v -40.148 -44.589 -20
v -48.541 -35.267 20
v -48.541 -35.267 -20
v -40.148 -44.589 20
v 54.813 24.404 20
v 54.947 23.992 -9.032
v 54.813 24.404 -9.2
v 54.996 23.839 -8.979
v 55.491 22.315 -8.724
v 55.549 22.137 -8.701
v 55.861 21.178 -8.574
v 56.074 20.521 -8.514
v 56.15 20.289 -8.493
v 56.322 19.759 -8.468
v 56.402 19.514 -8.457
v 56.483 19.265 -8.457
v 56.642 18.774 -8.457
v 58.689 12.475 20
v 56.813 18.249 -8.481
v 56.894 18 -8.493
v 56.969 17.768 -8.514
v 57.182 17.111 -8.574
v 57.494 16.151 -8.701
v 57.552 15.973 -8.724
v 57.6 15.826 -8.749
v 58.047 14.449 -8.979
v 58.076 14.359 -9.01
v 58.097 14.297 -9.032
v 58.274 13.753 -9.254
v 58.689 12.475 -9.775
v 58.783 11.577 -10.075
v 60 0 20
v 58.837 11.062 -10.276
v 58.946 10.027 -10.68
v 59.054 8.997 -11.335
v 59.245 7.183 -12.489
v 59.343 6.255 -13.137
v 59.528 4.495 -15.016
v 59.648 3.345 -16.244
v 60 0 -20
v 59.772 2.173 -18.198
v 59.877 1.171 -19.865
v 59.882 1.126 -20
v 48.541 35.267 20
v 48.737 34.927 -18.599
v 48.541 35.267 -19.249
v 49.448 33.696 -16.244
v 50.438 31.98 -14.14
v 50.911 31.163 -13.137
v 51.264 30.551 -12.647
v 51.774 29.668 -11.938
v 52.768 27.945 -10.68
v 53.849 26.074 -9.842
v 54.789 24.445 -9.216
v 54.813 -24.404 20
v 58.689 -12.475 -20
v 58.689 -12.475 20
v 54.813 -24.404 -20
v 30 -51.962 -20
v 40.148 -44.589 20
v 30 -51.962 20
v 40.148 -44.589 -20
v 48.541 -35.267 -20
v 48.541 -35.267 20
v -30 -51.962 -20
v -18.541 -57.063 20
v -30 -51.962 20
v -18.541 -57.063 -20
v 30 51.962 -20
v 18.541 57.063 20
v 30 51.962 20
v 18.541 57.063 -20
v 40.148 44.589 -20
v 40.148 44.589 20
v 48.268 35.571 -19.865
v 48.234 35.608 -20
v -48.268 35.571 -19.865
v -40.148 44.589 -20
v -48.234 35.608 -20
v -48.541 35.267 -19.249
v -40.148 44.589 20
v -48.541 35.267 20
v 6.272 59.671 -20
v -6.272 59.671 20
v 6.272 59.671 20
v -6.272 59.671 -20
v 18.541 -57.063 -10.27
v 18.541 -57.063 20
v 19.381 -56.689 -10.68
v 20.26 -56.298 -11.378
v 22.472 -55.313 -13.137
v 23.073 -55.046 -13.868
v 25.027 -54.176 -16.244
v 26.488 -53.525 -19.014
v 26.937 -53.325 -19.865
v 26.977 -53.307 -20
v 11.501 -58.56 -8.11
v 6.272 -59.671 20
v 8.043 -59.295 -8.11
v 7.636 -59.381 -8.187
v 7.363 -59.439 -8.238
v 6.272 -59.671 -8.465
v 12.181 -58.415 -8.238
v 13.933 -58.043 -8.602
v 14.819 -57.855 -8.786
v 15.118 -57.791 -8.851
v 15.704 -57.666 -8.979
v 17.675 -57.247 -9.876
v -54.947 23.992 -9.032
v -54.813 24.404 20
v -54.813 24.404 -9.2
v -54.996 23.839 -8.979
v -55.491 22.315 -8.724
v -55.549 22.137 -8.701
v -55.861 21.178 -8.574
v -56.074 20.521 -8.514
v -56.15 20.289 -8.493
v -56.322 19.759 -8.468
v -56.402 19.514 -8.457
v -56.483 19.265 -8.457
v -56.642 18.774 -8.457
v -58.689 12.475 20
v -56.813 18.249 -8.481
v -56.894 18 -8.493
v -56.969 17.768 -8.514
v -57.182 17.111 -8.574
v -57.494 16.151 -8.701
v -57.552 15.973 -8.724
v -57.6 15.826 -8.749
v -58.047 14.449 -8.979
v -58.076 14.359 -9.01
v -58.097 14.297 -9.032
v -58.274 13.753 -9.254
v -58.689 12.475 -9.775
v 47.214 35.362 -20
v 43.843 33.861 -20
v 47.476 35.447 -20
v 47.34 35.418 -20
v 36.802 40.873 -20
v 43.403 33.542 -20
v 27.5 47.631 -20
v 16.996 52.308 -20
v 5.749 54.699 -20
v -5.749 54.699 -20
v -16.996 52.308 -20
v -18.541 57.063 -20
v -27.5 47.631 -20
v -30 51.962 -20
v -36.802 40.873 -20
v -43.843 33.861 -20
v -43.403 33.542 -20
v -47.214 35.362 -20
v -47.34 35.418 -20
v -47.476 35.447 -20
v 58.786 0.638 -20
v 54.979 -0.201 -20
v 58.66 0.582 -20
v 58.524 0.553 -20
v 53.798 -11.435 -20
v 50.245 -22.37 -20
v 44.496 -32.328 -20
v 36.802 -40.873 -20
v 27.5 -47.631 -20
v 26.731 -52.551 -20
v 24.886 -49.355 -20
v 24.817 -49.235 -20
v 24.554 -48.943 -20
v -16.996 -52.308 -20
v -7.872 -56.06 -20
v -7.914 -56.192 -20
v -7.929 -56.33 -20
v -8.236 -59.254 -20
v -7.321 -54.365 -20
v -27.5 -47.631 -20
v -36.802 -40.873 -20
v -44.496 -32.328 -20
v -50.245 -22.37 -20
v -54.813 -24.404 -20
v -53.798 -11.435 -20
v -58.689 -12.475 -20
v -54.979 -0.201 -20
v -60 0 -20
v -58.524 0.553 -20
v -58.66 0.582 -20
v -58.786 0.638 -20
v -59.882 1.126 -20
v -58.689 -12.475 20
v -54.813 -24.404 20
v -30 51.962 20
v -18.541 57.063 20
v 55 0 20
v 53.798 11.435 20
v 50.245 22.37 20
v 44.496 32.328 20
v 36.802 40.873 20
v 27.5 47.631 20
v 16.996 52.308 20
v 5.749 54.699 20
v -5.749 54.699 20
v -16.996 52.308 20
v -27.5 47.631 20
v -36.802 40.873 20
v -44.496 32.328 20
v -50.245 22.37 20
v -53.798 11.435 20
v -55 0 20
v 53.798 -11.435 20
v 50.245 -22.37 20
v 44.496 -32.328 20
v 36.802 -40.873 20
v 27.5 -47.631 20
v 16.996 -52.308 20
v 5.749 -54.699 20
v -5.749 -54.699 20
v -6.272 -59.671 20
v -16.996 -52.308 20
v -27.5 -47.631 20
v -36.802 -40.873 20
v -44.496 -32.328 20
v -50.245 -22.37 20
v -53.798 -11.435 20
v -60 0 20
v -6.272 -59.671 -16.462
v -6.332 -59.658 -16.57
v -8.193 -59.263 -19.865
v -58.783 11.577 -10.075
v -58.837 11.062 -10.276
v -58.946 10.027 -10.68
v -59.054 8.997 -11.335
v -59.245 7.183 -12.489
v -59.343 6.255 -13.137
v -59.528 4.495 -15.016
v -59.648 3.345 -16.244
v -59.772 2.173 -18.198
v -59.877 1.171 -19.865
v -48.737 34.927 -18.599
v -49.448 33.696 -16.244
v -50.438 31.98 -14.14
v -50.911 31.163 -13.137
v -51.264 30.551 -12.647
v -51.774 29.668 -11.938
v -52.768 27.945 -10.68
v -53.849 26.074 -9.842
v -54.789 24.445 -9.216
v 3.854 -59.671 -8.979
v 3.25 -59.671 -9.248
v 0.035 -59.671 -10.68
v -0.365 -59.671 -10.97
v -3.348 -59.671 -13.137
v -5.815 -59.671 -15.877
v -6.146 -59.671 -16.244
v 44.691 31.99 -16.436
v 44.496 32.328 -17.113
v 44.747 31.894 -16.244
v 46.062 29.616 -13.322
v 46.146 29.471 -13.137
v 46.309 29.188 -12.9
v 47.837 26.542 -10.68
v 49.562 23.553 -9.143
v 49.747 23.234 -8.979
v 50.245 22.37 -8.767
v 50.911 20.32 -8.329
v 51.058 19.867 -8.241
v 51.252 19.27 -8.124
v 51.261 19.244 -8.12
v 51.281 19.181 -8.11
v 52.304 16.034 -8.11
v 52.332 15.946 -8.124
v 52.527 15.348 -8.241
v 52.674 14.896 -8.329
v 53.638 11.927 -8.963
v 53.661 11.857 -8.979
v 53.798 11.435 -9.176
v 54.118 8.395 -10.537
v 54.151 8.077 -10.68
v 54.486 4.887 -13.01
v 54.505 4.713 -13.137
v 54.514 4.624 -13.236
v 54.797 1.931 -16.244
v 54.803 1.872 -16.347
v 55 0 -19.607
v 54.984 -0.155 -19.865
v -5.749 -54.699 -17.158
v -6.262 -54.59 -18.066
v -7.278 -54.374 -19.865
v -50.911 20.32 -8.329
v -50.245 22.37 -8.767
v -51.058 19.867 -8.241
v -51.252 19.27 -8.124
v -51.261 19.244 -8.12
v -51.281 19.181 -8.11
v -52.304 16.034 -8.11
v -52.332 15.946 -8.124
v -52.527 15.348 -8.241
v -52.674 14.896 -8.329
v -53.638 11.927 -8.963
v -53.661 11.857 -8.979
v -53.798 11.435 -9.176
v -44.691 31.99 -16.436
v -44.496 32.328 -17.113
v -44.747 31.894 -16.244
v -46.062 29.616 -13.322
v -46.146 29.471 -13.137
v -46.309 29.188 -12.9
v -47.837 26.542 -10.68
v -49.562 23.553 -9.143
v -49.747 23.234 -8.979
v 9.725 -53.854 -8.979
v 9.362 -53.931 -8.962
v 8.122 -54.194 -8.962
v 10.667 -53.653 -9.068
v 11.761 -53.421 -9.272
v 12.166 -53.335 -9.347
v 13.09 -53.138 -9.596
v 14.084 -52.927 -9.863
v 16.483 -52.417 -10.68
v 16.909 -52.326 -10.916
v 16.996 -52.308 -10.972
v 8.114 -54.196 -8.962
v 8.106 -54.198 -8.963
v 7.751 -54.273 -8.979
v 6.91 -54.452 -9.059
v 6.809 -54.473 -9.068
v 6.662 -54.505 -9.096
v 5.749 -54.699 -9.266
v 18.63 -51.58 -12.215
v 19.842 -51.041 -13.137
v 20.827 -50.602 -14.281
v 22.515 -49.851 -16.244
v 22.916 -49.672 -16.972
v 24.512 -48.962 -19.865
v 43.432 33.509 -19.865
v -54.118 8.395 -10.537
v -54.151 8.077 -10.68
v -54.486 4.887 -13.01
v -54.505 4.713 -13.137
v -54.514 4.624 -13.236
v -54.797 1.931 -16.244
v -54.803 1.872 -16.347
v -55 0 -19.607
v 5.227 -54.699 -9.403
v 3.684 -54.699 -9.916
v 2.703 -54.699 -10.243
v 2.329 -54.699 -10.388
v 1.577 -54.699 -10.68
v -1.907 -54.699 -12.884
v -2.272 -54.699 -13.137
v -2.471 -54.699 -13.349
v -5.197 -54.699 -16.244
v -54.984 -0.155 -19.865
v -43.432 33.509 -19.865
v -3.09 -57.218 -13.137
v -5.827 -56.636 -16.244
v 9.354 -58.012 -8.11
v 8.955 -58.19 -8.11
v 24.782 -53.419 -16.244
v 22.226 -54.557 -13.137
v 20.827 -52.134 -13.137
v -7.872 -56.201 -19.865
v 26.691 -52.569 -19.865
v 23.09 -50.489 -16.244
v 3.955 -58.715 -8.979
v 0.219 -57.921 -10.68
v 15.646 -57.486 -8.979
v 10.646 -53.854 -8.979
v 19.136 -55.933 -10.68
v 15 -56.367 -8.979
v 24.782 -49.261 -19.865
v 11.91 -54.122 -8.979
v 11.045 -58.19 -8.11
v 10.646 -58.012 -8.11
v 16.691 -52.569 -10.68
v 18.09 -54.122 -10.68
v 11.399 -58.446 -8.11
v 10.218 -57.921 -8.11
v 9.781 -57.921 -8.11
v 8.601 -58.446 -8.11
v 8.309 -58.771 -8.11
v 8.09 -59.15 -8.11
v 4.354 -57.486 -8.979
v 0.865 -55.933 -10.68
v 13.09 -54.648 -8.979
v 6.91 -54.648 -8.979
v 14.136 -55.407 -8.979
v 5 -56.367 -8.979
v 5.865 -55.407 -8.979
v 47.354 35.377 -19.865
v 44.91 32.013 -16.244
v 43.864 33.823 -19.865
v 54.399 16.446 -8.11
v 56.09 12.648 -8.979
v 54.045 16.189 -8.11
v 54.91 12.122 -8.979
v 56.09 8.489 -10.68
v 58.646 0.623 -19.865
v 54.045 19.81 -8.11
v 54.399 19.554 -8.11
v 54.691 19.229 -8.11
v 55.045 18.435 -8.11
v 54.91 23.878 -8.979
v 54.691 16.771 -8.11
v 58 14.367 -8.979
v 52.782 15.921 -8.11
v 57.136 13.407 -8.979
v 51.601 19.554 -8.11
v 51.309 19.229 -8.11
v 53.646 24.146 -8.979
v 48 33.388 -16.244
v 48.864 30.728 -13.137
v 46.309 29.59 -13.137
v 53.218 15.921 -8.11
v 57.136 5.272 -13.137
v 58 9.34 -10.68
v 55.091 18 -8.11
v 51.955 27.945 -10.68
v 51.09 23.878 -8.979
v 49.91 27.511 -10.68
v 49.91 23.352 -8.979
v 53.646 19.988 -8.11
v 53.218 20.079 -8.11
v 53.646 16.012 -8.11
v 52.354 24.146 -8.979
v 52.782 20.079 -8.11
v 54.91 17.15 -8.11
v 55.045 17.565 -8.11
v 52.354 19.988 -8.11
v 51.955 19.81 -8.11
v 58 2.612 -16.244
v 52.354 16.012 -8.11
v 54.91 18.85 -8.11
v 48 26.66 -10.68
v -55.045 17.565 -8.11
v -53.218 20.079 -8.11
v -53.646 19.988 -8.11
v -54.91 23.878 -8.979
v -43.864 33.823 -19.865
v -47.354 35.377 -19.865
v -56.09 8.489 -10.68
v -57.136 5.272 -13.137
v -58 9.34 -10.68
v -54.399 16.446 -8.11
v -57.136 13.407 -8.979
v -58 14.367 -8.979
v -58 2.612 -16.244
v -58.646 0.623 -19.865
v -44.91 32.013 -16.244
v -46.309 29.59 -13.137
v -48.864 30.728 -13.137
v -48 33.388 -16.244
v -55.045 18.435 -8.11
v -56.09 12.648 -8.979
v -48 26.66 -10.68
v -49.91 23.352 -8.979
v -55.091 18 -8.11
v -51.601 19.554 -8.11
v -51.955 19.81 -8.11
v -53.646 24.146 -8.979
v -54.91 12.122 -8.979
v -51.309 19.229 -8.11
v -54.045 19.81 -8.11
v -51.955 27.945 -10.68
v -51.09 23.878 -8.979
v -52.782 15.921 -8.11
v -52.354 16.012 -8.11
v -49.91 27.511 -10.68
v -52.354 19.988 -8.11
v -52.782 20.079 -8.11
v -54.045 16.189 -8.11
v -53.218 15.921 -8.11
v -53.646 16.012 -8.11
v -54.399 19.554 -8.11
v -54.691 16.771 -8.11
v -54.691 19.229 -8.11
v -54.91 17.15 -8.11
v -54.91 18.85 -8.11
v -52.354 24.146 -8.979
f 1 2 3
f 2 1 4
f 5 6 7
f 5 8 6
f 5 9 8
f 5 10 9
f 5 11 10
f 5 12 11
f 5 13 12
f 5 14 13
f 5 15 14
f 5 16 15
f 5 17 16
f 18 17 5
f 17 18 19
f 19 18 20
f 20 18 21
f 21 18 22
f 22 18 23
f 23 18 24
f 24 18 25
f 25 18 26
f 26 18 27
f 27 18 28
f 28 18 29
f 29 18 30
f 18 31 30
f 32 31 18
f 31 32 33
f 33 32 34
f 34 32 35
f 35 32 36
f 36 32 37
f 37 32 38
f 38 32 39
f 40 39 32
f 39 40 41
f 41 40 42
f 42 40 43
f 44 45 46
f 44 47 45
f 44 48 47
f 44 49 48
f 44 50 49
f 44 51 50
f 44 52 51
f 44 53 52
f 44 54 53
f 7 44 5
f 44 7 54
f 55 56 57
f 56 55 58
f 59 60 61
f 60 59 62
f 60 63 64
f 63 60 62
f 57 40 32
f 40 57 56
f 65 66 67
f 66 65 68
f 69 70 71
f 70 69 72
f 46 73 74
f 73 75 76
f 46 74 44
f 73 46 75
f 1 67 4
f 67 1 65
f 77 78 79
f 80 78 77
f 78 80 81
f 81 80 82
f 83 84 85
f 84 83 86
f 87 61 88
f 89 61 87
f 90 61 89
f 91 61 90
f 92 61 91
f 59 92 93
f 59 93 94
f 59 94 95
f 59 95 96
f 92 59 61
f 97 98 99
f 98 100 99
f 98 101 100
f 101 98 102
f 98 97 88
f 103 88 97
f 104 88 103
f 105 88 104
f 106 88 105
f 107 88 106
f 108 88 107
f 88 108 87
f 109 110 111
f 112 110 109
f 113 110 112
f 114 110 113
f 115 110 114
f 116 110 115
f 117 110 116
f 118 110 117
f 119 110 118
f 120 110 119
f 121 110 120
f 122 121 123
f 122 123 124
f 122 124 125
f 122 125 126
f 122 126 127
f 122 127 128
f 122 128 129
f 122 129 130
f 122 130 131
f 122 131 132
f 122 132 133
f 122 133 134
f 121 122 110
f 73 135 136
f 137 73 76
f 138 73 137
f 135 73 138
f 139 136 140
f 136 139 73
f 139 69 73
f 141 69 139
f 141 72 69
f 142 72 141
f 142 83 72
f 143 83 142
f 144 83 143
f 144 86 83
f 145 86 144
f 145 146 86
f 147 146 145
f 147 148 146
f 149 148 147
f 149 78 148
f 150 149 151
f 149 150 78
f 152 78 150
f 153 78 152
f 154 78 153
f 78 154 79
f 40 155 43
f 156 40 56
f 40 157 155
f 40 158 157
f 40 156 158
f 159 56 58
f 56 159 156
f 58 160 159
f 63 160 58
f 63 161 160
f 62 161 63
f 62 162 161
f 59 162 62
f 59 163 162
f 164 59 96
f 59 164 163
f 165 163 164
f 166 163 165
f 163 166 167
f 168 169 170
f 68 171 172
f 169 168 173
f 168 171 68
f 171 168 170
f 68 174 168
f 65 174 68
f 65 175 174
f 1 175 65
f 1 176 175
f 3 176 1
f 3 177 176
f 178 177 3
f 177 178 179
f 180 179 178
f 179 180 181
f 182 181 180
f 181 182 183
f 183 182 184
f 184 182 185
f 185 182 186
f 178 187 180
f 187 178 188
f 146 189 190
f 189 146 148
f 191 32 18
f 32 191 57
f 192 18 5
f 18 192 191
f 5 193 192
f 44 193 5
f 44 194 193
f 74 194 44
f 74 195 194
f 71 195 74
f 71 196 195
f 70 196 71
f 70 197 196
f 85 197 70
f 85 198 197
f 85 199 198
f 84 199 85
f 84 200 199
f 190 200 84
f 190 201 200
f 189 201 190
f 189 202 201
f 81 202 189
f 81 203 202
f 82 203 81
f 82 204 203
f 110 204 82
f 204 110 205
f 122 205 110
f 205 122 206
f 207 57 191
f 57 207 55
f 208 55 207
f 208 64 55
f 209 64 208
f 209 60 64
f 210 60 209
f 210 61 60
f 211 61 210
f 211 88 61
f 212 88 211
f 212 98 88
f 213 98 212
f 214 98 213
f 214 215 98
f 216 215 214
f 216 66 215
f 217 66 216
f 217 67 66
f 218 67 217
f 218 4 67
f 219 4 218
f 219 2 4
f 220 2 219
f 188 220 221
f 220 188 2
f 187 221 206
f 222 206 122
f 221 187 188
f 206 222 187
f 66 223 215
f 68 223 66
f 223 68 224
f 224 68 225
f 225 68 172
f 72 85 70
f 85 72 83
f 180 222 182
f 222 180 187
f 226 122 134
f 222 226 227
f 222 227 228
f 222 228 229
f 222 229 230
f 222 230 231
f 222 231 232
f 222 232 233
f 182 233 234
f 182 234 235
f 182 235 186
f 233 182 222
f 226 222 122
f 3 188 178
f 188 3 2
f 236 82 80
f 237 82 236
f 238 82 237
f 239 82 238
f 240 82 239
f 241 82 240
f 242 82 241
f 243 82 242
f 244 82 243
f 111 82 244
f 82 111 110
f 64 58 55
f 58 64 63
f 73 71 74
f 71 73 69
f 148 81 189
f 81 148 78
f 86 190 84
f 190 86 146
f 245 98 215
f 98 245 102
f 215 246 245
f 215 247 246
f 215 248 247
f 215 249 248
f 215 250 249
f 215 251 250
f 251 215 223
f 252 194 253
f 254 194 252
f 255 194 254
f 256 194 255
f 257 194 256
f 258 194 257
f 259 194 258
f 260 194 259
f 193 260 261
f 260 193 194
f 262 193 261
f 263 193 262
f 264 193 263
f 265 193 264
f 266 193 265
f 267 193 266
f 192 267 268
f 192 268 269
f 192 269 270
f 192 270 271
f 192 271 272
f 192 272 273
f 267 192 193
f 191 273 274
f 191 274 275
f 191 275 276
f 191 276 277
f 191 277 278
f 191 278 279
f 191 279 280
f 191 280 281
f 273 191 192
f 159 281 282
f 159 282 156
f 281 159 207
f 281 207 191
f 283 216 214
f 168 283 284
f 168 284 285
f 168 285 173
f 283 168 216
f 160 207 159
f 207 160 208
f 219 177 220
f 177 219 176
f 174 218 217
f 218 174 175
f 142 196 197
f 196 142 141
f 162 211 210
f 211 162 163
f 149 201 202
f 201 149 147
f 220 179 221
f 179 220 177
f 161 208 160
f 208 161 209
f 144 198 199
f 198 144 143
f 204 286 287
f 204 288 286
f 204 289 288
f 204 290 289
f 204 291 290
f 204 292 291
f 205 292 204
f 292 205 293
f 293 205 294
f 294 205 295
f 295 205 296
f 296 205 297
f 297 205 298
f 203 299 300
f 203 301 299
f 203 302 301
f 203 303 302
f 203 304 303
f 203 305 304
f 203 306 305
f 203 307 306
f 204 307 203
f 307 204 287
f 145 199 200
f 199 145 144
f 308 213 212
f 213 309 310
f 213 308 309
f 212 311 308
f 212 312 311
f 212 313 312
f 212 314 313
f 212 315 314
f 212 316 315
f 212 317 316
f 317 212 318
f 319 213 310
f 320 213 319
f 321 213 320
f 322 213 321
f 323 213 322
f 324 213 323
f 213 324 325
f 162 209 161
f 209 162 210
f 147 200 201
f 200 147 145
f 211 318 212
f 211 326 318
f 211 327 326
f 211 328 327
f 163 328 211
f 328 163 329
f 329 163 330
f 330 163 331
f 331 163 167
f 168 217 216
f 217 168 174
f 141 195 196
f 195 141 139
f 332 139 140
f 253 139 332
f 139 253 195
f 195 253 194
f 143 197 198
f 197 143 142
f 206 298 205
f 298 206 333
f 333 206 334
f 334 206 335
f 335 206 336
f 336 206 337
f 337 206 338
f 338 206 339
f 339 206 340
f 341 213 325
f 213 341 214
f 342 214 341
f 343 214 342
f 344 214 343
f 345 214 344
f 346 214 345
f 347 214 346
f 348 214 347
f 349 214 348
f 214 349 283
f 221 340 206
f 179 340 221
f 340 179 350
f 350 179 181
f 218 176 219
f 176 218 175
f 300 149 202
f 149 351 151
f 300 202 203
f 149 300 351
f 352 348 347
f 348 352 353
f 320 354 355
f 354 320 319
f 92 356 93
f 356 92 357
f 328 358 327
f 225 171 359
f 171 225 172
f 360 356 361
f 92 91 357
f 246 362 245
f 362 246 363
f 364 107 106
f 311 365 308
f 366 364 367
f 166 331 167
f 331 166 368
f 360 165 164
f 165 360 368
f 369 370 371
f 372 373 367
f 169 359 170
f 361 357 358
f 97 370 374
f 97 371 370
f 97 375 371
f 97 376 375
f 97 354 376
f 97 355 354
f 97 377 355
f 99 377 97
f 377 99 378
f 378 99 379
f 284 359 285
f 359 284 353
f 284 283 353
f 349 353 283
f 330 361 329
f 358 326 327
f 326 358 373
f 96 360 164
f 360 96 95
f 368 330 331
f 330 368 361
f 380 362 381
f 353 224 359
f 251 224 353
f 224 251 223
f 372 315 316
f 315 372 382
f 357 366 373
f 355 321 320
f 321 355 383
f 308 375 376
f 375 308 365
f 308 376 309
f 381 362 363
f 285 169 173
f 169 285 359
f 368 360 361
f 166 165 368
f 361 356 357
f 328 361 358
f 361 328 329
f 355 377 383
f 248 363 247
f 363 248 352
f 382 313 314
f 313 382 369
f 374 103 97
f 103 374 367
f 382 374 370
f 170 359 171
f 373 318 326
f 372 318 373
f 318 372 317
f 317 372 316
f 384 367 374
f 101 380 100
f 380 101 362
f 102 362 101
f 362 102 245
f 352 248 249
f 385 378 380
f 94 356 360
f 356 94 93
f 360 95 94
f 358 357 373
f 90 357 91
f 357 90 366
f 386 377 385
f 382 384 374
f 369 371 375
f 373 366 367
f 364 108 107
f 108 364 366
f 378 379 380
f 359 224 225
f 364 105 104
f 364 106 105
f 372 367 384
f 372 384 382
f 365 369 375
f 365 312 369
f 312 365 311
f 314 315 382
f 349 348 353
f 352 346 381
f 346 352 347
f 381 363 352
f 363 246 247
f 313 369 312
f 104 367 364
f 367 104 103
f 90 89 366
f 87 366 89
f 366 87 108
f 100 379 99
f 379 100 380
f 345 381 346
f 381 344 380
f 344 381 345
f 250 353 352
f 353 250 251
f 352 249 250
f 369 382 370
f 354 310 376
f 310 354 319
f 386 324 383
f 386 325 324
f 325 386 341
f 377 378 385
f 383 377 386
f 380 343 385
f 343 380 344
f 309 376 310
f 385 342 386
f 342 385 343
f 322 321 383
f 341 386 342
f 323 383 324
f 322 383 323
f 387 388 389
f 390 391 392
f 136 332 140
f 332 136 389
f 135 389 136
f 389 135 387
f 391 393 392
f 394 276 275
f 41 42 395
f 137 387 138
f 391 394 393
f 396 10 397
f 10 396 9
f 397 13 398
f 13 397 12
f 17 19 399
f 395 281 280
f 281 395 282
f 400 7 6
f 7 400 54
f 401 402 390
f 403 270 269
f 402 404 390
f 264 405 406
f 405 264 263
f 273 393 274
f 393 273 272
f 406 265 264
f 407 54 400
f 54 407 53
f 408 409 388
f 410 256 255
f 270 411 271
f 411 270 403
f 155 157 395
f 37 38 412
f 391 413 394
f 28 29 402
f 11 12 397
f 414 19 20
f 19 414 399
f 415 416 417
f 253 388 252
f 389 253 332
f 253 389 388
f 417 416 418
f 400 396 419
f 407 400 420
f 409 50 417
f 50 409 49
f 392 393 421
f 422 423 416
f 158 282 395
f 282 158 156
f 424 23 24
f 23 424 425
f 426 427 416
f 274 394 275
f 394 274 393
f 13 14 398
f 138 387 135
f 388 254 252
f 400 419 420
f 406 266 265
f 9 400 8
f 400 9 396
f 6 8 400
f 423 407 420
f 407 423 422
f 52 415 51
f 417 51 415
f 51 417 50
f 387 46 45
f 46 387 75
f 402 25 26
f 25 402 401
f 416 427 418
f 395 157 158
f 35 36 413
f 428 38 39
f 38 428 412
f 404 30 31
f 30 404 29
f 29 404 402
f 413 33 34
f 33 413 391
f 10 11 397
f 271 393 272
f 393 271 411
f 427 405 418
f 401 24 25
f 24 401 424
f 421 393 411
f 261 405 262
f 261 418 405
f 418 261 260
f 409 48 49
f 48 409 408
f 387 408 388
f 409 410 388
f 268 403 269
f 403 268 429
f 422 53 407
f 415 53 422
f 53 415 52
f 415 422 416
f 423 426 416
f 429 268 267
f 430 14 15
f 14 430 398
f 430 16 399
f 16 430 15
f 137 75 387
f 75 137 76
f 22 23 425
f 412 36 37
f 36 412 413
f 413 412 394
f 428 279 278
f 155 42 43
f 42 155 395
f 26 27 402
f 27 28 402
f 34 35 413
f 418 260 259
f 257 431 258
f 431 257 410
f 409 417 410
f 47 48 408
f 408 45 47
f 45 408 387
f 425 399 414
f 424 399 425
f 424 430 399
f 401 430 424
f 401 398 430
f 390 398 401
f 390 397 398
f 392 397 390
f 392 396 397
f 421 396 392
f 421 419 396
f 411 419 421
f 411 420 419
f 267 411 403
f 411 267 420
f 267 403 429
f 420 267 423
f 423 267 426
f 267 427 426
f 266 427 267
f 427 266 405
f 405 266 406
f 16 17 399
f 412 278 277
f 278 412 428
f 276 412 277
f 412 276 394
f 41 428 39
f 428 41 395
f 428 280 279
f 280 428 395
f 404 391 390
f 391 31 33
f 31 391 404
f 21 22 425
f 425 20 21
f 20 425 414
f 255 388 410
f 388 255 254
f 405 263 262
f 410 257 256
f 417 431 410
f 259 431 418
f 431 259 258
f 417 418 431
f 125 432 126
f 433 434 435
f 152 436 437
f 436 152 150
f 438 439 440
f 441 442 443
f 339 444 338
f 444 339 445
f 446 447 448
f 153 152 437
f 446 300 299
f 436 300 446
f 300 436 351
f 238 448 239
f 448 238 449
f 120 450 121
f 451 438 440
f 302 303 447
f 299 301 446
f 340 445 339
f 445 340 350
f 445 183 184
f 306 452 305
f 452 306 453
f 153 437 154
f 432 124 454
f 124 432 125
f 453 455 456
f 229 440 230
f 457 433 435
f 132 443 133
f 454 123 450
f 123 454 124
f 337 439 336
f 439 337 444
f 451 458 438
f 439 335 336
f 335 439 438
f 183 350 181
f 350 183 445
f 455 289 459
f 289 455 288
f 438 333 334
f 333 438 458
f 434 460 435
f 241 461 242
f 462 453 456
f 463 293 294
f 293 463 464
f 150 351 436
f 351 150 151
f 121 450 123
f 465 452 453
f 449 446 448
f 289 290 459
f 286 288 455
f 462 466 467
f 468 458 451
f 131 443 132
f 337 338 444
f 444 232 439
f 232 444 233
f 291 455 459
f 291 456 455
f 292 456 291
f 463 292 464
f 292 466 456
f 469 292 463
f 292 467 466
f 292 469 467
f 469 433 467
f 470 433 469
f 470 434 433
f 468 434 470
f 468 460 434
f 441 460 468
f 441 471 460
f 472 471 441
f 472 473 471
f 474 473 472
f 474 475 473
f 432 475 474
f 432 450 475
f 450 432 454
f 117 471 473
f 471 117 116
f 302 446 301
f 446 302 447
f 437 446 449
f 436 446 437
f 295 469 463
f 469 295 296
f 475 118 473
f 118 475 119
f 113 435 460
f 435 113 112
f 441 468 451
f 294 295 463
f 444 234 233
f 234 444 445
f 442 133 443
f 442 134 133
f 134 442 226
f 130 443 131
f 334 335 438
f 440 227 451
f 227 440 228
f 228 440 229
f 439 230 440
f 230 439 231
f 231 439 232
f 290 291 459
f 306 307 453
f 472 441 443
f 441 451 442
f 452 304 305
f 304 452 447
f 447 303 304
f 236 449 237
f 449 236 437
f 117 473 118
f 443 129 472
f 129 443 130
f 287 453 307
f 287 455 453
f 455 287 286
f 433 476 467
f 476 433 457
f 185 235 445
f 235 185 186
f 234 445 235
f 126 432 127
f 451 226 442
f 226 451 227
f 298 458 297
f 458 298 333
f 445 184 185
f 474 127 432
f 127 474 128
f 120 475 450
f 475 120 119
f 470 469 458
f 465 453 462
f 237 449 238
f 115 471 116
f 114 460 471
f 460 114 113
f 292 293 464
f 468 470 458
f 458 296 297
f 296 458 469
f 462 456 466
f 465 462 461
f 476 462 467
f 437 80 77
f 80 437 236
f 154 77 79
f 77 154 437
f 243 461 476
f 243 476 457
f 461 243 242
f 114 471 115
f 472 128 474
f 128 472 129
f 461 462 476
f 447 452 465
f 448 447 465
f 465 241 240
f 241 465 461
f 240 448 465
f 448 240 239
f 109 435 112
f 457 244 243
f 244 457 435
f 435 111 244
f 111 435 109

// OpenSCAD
$fn=30;

diameter=60;
outer_ring_width=5;
ring_height=40;

difference() {
  difference() {
    cylinder(r=diameter, h=ring_height, center=true);
    #cylinder(r=(diameter - outer_ring_width), h=ring_height, center=true);
  }

  union() {
    translate([10, -diameter, -28])
    #sphere(r=20);

    translate([53, 18, -28])
    #sphere(r=20);

    translate([-53, 18, -28])
    #sphere(r=20);
  }
}
